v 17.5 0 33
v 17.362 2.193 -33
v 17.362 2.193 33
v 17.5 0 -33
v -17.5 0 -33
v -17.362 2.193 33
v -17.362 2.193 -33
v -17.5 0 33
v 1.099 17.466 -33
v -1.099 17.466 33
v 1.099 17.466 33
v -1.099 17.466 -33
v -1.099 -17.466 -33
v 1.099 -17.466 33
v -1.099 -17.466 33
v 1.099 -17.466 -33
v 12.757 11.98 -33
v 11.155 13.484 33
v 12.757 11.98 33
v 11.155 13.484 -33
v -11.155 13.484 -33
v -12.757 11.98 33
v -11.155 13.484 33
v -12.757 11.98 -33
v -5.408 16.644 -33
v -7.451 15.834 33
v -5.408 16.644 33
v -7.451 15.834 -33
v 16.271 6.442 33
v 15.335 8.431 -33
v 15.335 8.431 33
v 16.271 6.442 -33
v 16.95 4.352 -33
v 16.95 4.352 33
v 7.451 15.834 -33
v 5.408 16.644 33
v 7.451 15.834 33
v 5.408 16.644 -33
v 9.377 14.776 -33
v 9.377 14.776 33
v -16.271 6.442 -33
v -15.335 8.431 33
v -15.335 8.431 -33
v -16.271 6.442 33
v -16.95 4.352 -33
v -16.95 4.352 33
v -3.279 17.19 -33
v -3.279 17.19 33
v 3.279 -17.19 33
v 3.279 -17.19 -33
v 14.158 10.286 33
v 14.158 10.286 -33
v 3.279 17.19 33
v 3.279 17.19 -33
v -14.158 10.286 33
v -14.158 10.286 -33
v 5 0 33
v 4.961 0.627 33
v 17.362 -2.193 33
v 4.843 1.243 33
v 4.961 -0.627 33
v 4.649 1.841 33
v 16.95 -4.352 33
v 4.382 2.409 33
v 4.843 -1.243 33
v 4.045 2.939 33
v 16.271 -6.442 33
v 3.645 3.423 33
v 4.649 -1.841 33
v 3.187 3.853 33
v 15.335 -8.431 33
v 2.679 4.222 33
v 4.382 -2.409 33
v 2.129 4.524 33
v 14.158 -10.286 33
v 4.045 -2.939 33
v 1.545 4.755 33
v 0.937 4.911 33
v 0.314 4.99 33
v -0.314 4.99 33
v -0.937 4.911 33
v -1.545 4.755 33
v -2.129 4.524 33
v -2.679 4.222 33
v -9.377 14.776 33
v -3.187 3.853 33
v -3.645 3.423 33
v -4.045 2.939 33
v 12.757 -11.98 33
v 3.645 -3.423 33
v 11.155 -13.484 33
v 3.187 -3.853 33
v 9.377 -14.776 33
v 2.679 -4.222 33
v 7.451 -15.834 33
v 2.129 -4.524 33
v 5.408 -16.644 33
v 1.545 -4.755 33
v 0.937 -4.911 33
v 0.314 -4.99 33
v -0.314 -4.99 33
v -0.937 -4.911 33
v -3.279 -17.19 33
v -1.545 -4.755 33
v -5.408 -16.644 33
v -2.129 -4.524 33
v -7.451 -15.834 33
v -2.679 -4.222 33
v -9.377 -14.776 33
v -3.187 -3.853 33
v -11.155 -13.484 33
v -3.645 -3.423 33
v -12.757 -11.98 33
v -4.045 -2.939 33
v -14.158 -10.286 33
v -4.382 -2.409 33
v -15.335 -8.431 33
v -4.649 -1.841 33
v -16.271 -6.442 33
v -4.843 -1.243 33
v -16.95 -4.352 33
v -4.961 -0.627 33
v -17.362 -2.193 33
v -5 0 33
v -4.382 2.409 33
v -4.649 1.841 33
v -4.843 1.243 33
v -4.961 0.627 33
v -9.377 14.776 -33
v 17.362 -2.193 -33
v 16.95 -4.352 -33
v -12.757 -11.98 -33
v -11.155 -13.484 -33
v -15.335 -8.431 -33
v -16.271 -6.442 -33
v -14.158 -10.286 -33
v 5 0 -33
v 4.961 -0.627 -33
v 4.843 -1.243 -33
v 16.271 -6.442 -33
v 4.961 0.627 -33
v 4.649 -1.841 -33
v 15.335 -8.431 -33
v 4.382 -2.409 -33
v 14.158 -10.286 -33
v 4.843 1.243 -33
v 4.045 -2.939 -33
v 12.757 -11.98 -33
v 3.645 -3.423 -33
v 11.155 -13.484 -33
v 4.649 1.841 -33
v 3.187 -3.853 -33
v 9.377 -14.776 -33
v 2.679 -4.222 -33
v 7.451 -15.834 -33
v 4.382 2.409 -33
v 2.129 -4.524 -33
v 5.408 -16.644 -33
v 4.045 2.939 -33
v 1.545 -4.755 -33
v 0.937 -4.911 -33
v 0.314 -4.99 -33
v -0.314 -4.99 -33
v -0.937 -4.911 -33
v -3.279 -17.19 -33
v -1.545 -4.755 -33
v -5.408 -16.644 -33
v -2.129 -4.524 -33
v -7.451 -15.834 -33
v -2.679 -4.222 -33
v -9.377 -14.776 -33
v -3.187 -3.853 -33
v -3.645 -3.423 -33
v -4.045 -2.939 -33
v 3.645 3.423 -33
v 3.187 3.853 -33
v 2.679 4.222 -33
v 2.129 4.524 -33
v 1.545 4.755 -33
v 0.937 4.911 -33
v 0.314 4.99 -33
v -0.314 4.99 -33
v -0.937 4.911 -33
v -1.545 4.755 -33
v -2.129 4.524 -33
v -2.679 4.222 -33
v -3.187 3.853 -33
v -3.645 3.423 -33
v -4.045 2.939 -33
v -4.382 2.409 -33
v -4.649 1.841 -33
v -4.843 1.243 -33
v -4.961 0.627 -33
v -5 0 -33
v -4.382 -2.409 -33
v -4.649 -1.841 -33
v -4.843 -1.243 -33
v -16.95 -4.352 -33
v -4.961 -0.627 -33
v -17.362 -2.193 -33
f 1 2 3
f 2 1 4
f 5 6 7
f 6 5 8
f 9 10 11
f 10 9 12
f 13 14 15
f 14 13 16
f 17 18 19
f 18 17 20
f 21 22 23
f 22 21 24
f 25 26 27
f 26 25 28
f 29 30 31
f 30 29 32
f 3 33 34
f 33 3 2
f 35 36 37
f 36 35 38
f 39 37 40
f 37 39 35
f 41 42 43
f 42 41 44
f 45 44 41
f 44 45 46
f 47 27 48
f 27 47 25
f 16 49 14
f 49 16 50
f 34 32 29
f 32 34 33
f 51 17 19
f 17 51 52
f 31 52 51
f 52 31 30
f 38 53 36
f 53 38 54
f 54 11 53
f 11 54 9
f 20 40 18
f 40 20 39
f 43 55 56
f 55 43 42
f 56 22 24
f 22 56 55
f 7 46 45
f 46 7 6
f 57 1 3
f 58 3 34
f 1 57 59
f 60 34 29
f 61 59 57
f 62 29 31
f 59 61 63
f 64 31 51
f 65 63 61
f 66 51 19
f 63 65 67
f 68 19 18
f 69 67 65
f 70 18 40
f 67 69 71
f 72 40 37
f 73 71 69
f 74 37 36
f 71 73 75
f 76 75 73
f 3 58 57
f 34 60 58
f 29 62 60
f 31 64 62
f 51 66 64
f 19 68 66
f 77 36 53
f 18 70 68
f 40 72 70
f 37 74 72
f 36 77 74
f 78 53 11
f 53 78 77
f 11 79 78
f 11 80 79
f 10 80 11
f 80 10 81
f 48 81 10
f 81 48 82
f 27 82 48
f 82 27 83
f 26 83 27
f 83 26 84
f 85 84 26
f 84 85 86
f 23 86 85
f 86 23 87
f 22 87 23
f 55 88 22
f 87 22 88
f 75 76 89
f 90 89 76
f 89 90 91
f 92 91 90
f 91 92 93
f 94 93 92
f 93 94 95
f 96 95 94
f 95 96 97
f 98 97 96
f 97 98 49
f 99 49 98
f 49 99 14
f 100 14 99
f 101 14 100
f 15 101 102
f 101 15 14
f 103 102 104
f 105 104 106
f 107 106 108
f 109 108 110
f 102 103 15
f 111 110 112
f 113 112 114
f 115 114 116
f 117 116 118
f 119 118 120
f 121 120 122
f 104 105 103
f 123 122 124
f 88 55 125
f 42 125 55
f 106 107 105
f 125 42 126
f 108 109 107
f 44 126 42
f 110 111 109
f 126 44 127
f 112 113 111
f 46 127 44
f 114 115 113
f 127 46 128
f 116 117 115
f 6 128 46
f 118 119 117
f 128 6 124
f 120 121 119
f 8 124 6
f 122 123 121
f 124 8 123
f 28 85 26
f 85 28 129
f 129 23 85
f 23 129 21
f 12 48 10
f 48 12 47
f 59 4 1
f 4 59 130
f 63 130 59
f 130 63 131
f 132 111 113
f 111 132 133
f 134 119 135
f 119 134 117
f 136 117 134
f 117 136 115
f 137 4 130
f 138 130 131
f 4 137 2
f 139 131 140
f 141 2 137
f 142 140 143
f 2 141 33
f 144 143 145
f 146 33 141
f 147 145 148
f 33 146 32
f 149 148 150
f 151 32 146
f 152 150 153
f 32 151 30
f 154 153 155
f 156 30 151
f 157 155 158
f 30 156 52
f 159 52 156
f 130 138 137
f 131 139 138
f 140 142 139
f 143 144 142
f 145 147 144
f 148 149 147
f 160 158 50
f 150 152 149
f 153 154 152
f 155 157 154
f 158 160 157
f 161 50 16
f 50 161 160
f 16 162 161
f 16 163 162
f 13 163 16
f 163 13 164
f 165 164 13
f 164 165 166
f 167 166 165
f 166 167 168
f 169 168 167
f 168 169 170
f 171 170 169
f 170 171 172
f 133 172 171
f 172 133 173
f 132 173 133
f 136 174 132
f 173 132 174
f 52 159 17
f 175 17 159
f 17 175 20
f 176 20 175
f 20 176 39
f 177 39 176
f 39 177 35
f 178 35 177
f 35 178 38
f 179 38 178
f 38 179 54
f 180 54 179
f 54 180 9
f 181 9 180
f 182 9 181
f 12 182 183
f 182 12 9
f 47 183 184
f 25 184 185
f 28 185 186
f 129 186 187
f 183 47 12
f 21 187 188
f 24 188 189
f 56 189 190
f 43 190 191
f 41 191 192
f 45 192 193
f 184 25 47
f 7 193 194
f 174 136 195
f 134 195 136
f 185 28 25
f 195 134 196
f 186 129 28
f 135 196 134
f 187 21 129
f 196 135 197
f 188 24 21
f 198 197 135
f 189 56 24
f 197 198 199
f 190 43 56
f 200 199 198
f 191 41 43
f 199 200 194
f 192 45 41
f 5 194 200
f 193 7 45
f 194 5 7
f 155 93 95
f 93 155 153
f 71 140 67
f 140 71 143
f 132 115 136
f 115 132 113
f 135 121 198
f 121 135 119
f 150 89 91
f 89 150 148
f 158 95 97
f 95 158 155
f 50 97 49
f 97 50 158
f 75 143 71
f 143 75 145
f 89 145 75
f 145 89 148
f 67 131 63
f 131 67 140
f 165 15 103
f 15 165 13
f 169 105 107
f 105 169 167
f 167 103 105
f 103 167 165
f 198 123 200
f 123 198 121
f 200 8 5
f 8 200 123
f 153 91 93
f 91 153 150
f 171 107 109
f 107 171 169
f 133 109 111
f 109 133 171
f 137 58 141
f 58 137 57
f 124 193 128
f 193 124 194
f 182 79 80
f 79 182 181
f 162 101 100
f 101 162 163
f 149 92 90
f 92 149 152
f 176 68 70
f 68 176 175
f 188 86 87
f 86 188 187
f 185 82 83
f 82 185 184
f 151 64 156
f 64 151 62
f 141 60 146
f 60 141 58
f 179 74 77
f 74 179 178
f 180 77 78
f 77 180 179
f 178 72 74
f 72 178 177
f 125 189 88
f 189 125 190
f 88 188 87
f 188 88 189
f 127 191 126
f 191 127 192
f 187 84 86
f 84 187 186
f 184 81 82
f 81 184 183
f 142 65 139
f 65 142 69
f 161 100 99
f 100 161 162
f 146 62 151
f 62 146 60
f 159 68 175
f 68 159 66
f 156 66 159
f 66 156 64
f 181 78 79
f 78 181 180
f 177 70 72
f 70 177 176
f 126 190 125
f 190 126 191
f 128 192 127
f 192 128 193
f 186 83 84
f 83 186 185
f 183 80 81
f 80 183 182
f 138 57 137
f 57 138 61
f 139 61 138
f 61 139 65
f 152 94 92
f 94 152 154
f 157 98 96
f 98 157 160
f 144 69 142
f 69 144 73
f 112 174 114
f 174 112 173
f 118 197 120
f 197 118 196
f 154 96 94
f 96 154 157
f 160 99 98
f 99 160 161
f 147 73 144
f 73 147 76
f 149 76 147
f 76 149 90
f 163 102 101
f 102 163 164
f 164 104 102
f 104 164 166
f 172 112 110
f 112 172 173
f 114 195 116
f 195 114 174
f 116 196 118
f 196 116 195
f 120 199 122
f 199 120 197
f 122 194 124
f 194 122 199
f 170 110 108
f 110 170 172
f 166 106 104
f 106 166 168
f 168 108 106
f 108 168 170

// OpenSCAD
$fn = 50;


difference() {
	union() {
		translate(v = [0, 0, -33.0000000000]) {
			cylinder(h = 66, r = 17.5000000000);
		}
	}
	union() {
		translate(v = [0, 0, -100.0000000000]) {
			cylinder(h = 200, r = 5);
		}
	}
}
